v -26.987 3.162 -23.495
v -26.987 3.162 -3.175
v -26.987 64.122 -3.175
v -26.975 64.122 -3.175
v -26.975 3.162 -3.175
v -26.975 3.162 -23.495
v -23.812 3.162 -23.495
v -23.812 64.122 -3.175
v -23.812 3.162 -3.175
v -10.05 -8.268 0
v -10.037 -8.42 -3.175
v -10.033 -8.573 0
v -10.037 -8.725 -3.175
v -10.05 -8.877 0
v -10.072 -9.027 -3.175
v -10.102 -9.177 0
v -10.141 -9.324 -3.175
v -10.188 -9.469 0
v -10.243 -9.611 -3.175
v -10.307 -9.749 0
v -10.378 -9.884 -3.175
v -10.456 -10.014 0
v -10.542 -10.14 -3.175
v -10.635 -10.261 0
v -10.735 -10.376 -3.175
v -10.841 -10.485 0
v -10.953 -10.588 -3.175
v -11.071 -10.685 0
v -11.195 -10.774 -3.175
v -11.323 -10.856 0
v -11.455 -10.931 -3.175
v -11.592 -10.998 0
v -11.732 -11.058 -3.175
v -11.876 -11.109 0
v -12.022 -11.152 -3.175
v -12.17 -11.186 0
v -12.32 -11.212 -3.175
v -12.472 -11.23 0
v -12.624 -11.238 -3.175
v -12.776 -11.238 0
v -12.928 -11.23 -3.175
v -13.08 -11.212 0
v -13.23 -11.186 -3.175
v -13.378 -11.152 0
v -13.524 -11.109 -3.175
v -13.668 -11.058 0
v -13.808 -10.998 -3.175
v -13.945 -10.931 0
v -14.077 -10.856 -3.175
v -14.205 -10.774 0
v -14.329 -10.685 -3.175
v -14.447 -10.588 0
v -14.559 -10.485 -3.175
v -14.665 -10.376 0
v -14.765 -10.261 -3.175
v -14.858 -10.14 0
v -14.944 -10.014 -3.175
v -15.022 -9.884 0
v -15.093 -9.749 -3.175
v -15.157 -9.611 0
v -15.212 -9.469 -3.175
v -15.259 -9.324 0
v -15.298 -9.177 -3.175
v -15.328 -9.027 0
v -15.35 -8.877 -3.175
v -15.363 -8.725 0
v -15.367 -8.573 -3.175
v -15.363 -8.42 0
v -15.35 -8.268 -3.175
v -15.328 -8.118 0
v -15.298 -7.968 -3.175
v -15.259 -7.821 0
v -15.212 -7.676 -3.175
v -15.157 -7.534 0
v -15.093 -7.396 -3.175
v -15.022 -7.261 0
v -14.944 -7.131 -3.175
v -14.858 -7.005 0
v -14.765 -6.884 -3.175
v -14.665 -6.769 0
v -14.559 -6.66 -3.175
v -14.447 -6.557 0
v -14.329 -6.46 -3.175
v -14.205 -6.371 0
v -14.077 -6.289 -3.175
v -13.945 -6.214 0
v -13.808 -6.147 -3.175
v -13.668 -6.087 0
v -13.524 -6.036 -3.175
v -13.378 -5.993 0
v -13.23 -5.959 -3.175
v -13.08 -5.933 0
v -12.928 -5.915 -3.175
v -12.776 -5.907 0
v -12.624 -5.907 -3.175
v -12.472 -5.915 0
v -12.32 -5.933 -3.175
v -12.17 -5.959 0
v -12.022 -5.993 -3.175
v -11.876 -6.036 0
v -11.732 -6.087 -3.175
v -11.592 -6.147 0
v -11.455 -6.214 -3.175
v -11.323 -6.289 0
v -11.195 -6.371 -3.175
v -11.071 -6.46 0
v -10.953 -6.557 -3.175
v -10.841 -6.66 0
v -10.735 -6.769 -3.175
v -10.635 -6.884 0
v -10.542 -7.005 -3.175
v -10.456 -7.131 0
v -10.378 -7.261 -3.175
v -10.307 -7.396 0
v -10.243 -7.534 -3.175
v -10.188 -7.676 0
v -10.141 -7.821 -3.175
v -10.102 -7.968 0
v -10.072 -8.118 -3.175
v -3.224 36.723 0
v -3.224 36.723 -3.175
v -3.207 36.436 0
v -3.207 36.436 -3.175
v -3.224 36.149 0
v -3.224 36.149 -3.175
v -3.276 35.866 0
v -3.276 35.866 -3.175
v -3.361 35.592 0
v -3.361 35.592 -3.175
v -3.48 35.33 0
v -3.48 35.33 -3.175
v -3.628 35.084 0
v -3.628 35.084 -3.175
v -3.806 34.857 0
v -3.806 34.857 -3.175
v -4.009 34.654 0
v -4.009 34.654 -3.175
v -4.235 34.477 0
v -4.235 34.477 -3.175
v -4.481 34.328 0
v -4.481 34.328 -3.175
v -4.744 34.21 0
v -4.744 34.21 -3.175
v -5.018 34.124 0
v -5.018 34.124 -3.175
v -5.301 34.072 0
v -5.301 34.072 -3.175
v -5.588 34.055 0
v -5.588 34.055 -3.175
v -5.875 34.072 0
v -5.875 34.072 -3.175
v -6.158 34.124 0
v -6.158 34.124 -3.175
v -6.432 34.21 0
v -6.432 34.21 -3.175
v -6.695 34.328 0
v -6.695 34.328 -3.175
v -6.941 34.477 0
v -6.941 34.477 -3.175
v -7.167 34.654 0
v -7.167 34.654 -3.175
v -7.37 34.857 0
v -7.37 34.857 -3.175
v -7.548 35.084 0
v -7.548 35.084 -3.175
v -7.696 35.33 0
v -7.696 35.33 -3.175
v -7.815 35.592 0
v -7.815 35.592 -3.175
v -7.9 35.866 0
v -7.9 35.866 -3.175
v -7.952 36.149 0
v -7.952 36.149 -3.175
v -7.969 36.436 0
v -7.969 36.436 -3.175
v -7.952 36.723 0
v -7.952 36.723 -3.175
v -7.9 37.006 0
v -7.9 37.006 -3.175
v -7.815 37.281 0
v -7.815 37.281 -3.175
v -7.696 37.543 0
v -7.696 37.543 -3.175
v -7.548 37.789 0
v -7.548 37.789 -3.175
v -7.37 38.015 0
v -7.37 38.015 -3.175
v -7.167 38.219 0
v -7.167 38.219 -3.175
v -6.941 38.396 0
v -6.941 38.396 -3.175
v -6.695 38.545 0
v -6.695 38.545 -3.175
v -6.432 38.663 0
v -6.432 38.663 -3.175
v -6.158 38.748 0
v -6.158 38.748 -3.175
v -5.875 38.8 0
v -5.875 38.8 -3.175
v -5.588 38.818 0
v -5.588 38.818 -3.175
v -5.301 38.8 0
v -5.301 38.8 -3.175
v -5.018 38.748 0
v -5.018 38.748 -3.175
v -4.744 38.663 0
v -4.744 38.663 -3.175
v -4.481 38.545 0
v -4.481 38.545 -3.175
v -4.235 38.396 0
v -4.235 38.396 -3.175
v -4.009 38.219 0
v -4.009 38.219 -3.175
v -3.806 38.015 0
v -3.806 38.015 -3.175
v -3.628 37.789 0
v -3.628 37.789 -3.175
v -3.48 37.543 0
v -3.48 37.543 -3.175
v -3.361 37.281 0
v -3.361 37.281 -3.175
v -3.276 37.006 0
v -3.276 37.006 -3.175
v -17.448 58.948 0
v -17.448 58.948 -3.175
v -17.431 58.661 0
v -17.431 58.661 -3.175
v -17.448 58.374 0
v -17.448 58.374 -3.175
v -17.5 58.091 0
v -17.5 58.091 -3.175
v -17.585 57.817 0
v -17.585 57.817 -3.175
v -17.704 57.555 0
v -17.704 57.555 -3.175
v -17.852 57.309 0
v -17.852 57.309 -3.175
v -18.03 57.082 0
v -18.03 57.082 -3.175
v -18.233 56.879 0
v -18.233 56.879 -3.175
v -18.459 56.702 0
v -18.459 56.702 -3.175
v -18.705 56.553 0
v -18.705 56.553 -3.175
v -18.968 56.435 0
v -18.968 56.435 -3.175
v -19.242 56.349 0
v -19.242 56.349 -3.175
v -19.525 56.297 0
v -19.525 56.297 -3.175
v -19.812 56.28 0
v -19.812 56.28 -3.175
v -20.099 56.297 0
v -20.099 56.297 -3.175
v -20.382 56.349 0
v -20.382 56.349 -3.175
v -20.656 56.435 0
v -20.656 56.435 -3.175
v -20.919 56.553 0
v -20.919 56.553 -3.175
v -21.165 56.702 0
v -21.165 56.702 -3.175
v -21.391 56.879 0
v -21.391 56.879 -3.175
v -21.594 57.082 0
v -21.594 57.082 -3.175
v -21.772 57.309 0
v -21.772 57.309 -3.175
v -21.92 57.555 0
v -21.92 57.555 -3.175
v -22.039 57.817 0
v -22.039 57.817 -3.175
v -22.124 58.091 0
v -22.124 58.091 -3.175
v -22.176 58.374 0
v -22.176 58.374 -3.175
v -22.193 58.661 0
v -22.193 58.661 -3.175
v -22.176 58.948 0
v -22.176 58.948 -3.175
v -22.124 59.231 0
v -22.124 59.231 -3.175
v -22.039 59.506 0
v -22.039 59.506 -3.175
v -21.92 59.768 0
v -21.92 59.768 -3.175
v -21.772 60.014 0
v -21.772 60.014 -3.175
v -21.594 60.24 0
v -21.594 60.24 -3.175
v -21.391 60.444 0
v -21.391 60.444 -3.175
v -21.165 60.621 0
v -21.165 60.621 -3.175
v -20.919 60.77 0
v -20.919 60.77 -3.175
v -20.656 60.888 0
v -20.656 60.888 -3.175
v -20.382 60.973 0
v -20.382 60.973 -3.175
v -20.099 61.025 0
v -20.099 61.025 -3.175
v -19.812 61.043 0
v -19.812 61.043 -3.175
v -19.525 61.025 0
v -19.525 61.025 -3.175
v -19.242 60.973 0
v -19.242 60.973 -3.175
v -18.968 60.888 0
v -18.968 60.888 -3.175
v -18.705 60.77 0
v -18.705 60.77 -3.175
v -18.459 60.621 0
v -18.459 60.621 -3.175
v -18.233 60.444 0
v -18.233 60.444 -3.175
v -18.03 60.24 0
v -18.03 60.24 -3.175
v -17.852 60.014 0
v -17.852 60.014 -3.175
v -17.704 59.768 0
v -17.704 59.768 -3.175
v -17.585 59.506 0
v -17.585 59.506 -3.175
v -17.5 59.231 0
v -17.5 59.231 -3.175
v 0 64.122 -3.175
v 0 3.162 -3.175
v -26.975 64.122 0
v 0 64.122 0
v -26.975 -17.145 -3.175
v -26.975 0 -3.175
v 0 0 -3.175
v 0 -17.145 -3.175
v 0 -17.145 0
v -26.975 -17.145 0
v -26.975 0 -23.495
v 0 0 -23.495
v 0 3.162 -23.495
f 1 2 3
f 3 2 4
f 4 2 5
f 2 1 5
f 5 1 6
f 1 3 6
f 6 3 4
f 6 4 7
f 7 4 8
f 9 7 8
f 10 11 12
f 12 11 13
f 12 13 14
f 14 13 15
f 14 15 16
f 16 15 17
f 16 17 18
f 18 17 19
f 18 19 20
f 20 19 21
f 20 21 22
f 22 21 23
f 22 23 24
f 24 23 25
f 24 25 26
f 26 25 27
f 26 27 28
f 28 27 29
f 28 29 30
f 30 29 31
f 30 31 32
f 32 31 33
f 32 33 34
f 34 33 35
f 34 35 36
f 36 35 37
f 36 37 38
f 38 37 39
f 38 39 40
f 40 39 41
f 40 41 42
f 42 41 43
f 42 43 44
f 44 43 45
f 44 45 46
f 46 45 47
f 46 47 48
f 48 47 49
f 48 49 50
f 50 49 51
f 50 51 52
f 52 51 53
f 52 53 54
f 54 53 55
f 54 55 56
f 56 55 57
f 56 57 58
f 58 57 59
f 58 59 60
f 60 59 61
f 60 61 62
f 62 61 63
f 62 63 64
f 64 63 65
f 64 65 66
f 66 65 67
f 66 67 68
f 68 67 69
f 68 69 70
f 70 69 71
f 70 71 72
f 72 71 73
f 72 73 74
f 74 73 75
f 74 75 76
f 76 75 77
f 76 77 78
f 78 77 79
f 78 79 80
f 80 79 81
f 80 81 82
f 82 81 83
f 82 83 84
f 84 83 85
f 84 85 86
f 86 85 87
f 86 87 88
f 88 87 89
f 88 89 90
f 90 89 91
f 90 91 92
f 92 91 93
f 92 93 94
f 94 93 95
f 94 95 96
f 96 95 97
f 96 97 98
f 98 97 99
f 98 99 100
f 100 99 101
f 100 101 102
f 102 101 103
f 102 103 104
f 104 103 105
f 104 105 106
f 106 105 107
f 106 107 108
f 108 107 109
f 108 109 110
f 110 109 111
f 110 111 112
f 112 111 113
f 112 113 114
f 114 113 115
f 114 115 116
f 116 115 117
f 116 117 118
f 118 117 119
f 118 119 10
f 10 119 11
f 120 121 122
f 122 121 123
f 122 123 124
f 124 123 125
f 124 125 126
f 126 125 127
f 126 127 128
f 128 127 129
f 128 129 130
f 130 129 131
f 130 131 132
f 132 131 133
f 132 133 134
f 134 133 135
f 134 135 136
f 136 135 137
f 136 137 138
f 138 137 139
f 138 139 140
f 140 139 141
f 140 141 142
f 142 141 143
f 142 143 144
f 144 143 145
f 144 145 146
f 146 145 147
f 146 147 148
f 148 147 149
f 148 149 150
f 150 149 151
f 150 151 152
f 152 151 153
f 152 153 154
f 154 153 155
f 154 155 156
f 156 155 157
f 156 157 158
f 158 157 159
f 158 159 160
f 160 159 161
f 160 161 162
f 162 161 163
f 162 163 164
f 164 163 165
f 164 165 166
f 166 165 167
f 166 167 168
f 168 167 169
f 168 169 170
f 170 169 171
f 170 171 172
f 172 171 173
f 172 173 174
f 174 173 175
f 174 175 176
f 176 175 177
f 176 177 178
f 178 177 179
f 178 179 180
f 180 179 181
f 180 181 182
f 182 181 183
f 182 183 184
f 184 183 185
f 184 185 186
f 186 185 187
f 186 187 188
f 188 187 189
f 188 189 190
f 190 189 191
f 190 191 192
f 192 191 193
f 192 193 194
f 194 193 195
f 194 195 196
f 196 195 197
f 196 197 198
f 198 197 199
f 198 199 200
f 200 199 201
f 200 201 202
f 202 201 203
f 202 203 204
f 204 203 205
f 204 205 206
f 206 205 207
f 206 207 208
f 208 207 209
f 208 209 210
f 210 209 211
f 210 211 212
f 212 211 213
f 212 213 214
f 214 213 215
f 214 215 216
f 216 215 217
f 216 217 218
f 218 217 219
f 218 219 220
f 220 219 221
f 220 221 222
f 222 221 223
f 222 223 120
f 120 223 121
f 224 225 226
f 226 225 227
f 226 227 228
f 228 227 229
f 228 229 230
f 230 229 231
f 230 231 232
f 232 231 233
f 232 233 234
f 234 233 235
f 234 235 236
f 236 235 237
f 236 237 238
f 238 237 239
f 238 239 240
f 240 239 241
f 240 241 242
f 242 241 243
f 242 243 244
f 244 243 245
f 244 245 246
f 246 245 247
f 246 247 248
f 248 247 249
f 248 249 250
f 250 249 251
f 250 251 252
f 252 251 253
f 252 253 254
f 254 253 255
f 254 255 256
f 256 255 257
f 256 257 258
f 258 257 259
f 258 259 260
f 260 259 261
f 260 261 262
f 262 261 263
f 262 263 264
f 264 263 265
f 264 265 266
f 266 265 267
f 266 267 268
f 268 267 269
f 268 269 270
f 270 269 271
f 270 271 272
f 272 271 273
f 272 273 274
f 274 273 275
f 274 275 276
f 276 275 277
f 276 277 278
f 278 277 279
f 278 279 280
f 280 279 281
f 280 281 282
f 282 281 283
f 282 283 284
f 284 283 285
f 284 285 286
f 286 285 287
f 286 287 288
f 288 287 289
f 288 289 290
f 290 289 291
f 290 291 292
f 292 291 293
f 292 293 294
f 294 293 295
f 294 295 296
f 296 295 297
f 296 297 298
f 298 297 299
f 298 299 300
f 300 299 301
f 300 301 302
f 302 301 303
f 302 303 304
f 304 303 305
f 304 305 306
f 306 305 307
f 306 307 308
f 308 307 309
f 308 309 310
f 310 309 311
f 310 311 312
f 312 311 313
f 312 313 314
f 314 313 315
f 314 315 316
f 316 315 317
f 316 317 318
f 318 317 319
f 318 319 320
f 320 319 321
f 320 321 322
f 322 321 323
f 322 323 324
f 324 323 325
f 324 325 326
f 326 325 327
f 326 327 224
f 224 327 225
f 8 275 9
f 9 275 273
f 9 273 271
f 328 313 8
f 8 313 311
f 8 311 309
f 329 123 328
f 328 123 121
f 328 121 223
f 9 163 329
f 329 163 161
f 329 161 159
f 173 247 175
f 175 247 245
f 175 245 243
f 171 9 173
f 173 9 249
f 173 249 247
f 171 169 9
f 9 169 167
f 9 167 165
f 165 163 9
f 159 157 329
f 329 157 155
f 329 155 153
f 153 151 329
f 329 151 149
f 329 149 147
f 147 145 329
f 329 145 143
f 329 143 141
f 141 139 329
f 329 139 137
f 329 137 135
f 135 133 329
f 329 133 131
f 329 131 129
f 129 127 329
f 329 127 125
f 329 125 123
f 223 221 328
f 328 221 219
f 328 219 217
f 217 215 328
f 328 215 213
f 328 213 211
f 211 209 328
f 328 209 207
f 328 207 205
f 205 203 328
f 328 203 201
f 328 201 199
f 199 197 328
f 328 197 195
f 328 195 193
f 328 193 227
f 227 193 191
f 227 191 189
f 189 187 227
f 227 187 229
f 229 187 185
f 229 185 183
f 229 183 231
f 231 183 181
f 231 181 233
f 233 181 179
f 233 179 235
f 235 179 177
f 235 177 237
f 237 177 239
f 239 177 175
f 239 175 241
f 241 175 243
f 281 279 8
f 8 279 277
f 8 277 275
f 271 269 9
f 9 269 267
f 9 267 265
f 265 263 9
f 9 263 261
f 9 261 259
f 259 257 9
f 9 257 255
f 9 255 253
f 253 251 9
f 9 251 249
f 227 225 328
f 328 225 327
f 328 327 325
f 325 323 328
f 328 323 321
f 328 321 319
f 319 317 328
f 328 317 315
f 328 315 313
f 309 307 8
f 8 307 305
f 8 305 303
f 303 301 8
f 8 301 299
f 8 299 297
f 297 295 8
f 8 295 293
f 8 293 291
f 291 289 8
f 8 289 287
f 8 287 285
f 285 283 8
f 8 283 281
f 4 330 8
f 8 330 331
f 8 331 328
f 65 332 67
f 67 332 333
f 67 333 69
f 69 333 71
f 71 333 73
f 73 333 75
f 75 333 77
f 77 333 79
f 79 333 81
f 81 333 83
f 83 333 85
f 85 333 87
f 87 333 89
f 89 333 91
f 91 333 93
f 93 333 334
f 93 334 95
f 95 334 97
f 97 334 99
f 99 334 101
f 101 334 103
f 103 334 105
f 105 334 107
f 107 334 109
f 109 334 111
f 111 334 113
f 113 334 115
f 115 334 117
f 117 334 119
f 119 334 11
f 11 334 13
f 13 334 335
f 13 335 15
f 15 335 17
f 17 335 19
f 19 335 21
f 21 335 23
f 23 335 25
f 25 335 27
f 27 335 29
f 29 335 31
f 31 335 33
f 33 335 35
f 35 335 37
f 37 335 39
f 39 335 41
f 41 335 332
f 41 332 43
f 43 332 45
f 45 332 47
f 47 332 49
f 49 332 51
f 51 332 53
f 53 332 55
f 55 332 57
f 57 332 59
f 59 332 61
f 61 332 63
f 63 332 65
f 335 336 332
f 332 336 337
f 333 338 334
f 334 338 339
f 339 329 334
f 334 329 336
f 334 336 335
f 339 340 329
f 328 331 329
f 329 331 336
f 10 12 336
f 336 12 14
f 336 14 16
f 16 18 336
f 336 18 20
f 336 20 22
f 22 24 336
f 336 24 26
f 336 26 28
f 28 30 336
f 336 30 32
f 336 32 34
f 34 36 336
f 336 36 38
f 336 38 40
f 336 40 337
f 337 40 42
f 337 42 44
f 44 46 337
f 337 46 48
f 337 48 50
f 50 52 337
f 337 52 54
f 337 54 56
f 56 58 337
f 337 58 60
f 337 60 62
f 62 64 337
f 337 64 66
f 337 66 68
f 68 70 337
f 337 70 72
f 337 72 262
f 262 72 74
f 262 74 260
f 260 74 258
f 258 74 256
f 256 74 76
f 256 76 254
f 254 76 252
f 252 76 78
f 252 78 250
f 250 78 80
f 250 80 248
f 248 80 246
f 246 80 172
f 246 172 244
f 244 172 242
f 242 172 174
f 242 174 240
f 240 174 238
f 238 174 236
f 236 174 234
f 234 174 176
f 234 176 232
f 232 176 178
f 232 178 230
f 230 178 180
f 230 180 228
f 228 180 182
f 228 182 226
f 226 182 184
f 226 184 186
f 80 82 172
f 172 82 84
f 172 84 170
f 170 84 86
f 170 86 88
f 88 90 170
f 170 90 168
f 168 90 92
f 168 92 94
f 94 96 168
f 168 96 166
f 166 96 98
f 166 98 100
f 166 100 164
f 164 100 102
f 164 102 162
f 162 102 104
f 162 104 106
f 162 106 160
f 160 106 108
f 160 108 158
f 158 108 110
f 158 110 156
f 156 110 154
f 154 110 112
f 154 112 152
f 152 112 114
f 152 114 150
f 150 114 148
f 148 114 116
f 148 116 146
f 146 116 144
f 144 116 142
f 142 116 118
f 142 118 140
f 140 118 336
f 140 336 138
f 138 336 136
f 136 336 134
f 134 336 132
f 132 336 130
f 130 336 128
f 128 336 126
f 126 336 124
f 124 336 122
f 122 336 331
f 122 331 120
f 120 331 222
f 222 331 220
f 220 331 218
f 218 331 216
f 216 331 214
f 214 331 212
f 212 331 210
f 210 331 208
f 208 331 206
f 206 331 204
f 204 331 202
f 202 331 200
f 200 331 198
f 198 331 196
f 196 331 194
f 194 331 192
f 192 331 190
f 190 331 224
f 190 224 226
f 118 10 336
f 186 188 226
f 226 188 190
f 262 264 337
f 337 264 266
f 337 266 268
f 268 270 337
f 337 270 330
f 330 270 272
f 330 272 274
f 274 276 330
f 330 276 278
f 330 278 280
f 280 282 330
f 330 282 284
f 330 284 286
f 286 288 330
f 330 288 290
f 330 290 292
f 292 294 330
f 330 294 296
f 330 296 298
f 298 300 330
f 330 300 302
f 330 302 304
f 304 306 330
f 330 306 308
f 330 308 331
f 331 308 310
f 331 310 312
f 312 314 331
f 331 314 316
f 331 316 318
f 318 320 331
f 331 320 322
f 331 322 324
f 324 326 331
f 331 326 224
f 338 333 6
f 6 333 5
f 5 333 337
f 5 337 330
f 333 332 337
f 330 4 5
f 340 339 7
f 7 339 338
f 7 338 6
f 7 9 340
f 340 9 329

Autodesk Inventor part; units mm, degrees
ref_plane "YZ Plane" through (0, 0, 0) normal (1, 0, 0) x (0, 1, 0)
ref_plane "XZ Plane" through (0, 0, 0) normal (0, 1, 0) x (-1, 0, 0)
ref_plane "XY Plane" through (0, 0, 0) normal (0, 0, 1) x (1, 0, 0)
sketch "Sketch1" plane through (0, 0, 0) normal (0, 1, 0) x (-1, 0, 0)
  line L0 (0, 0) -> (25.4, 0)
  line L1 (25.4, 0) -> (25.4, -20.32)
  line L2 (25.4, -20.32) -> (0, -20.32)
  line L3 (0, -20.32) -> (0, 0)
  dimension "d0" = 25.4
  dimension "d1" = 20.32
extrude "Extrusion1" add sketch "Sketch1" along normal blind 3.1623
sketch "Sketch2" plane through (0, 0, 0) normal (0, -1, 0) x (1, 0, 0)
  line L0 (-25.4, 0) -> (0, 0) projected
  line L1 (0, 0) -> (0, -20.32) projected
  line L2 (-25.4, 0) -> (0, 0)
  line L3 (0, 0) -> (0, -3.175)
  line L4 (0, -3.175) -> (-25.4, -3.175)
  line L5 (-25.4, -3.175) -> (-25.4, 0)
  dimension "d4" = 3.175
extrude "Extrusion2" add sketch "Sketch2" along normal blind 17.145
sketch "Sketch3" plane through (0, 3.1623, 0) normal (0, 1, 0) x (1, 0, 0)
  line L0 (-25.4, 0) -> (0, 0) projected
  line L1 (0, 0) -> (0, 20.32) projected
  line L2 (-25.4, 0) -> (0, 0)
  line L3 (0, 0) -> (0, 3.175)
  line L4 (0, 3.175) -> (-25.4, 3.175)
  line L5 (-25.4, 3.175) -> (-25.4, 0)
  dimension "d7" = 3.175
extrude "Extrusion3" add sketch "Sketch3" along normal blind 60.96
sketch "Sketch4" plane through (0, 3.1623, -3.175) normal (0, 0, -1) x (-1, 0, 0)
  line L0 (0, 60.96) -> (25.4, 60.96) projected
  line L1 (25.4, 60.96) -> (19.812, 60.96)
  line L2 (0, 60.96) -> (9.271, 60.96)
  line L3 (0, 0) -> (25.4, 0) projected
  line L4 (12.7, 0) -> (12.7, 60.96)
  line L5 (12.7, 0) -> (22.733, 0) construction
  line L6 (12.7, 0) -> (2.667, 0) construction
  line L7 (2.667, 0) -> (2.667, 60.96) construction
  line L8 (22.733, 0) -> (22.733, 60.96) construction
  line L9 (25.4, 60.96) -> (0, 60.96) construction
  line L10 (2.667, 60.96) -> (2.667, 21.59) construction
  line L11 (2.667, 21.59) -> (22.733, 21.59) construction
  line L12 (2.667, 60.96) -> (5.588, 60.96) construction
  line L13 (5.588, 60.96) -> (5.588, 21.59) construction
  line L14 (22.733, 60.96) -> (19.812, 60.96) construction
  line L15 (19.812, 60.96) -> (19.812, 21.59) construction
  line L16 (22.733, 60.96) -> (22.733, 55.499) construction
  line L17 (22.733, 55.499) -> (19.812, 55.499) construction
  line L18 (2.667, 21.59) -> (2.667, 33.274) construction
  line L19 (2.667, 33.274) -> (5.588, 33.274) construction
  circle A0 centre (19.812, 55.499) radius 2.3813
  circle A1 centre (5.588, 33.274) radius 2.3813
  point P0 (0, -3.1623)
  dimension "d76" = 10.033
  dimension "d77" = 10.033
  dimension "d78" = 39.37
  dimension "d79" = 2.921
  dimension "d80" = 2.921
  dimension "d81" = 5.461
  dimension "d82" = 11.684
  dimension "d83" = 4.7625
  dimension "d84" = 4.7625
extrude "Extrusion4" cut sketch "Sketch4" against normal blind 63.5
sketch "Sketch7" plane through (0, 0, -3.175) normal (0, 0, -1) x (-1, 0, 0)
  line L0 (25.4, -17.145) -> (0, -17.145) projected
  line L1 (12.7, -17.145) -> (12.7, -8.5725)
  circle A0 centre (12.7, -8.5725) radius 2.667
  point P0 (0, 0)
  dimension "d23" = 5.334
extrude "Extrusion7" cut sketch "Sketch7" against normal blind 46.0375
move faces "Move1" translate (0, 0, -3.175) faces at (-8.4667, 1.0541, -20.32)
move faces "Move11" translate (-4.7625, 0, 0) faces at (-25.4, 16.7132, -1.0583)
move faces "Move13" translate (1.5875, 0, 0) faces at (-30.1625, 16.7132, -1.0583)
move faces "Move14" translate (1.6002, 0, 0) faces at (-28.575, 16.7132, -1.0583)
sketch "Sketch16" plane through (-30.1625, 0, -23.495) normal (-1, 0, 0) x (0, 0, 1)
  line L0 (0, 3.1623) -> (20.32, 3.1623) projected
  line L1 (20.32, 3.1623) -> (20.32, 64.1223) projected
  line L2 (0, 3.1623) -> (20.32, 3.1623)
  line L3 (20.32, 3.1623) -> (20.32, 64.1223)
  line L4 (20.32, 64.1223) -> (0, 3.1623)
  point P0 (23.495, 0)
extrude "Extrusion18" add sketch "Sketch16" against normal blind 6.35
extrude "Extrusion19" cut sketch "Sketch16" against normal blind 3.175
properties part number "SolenoidMount"
